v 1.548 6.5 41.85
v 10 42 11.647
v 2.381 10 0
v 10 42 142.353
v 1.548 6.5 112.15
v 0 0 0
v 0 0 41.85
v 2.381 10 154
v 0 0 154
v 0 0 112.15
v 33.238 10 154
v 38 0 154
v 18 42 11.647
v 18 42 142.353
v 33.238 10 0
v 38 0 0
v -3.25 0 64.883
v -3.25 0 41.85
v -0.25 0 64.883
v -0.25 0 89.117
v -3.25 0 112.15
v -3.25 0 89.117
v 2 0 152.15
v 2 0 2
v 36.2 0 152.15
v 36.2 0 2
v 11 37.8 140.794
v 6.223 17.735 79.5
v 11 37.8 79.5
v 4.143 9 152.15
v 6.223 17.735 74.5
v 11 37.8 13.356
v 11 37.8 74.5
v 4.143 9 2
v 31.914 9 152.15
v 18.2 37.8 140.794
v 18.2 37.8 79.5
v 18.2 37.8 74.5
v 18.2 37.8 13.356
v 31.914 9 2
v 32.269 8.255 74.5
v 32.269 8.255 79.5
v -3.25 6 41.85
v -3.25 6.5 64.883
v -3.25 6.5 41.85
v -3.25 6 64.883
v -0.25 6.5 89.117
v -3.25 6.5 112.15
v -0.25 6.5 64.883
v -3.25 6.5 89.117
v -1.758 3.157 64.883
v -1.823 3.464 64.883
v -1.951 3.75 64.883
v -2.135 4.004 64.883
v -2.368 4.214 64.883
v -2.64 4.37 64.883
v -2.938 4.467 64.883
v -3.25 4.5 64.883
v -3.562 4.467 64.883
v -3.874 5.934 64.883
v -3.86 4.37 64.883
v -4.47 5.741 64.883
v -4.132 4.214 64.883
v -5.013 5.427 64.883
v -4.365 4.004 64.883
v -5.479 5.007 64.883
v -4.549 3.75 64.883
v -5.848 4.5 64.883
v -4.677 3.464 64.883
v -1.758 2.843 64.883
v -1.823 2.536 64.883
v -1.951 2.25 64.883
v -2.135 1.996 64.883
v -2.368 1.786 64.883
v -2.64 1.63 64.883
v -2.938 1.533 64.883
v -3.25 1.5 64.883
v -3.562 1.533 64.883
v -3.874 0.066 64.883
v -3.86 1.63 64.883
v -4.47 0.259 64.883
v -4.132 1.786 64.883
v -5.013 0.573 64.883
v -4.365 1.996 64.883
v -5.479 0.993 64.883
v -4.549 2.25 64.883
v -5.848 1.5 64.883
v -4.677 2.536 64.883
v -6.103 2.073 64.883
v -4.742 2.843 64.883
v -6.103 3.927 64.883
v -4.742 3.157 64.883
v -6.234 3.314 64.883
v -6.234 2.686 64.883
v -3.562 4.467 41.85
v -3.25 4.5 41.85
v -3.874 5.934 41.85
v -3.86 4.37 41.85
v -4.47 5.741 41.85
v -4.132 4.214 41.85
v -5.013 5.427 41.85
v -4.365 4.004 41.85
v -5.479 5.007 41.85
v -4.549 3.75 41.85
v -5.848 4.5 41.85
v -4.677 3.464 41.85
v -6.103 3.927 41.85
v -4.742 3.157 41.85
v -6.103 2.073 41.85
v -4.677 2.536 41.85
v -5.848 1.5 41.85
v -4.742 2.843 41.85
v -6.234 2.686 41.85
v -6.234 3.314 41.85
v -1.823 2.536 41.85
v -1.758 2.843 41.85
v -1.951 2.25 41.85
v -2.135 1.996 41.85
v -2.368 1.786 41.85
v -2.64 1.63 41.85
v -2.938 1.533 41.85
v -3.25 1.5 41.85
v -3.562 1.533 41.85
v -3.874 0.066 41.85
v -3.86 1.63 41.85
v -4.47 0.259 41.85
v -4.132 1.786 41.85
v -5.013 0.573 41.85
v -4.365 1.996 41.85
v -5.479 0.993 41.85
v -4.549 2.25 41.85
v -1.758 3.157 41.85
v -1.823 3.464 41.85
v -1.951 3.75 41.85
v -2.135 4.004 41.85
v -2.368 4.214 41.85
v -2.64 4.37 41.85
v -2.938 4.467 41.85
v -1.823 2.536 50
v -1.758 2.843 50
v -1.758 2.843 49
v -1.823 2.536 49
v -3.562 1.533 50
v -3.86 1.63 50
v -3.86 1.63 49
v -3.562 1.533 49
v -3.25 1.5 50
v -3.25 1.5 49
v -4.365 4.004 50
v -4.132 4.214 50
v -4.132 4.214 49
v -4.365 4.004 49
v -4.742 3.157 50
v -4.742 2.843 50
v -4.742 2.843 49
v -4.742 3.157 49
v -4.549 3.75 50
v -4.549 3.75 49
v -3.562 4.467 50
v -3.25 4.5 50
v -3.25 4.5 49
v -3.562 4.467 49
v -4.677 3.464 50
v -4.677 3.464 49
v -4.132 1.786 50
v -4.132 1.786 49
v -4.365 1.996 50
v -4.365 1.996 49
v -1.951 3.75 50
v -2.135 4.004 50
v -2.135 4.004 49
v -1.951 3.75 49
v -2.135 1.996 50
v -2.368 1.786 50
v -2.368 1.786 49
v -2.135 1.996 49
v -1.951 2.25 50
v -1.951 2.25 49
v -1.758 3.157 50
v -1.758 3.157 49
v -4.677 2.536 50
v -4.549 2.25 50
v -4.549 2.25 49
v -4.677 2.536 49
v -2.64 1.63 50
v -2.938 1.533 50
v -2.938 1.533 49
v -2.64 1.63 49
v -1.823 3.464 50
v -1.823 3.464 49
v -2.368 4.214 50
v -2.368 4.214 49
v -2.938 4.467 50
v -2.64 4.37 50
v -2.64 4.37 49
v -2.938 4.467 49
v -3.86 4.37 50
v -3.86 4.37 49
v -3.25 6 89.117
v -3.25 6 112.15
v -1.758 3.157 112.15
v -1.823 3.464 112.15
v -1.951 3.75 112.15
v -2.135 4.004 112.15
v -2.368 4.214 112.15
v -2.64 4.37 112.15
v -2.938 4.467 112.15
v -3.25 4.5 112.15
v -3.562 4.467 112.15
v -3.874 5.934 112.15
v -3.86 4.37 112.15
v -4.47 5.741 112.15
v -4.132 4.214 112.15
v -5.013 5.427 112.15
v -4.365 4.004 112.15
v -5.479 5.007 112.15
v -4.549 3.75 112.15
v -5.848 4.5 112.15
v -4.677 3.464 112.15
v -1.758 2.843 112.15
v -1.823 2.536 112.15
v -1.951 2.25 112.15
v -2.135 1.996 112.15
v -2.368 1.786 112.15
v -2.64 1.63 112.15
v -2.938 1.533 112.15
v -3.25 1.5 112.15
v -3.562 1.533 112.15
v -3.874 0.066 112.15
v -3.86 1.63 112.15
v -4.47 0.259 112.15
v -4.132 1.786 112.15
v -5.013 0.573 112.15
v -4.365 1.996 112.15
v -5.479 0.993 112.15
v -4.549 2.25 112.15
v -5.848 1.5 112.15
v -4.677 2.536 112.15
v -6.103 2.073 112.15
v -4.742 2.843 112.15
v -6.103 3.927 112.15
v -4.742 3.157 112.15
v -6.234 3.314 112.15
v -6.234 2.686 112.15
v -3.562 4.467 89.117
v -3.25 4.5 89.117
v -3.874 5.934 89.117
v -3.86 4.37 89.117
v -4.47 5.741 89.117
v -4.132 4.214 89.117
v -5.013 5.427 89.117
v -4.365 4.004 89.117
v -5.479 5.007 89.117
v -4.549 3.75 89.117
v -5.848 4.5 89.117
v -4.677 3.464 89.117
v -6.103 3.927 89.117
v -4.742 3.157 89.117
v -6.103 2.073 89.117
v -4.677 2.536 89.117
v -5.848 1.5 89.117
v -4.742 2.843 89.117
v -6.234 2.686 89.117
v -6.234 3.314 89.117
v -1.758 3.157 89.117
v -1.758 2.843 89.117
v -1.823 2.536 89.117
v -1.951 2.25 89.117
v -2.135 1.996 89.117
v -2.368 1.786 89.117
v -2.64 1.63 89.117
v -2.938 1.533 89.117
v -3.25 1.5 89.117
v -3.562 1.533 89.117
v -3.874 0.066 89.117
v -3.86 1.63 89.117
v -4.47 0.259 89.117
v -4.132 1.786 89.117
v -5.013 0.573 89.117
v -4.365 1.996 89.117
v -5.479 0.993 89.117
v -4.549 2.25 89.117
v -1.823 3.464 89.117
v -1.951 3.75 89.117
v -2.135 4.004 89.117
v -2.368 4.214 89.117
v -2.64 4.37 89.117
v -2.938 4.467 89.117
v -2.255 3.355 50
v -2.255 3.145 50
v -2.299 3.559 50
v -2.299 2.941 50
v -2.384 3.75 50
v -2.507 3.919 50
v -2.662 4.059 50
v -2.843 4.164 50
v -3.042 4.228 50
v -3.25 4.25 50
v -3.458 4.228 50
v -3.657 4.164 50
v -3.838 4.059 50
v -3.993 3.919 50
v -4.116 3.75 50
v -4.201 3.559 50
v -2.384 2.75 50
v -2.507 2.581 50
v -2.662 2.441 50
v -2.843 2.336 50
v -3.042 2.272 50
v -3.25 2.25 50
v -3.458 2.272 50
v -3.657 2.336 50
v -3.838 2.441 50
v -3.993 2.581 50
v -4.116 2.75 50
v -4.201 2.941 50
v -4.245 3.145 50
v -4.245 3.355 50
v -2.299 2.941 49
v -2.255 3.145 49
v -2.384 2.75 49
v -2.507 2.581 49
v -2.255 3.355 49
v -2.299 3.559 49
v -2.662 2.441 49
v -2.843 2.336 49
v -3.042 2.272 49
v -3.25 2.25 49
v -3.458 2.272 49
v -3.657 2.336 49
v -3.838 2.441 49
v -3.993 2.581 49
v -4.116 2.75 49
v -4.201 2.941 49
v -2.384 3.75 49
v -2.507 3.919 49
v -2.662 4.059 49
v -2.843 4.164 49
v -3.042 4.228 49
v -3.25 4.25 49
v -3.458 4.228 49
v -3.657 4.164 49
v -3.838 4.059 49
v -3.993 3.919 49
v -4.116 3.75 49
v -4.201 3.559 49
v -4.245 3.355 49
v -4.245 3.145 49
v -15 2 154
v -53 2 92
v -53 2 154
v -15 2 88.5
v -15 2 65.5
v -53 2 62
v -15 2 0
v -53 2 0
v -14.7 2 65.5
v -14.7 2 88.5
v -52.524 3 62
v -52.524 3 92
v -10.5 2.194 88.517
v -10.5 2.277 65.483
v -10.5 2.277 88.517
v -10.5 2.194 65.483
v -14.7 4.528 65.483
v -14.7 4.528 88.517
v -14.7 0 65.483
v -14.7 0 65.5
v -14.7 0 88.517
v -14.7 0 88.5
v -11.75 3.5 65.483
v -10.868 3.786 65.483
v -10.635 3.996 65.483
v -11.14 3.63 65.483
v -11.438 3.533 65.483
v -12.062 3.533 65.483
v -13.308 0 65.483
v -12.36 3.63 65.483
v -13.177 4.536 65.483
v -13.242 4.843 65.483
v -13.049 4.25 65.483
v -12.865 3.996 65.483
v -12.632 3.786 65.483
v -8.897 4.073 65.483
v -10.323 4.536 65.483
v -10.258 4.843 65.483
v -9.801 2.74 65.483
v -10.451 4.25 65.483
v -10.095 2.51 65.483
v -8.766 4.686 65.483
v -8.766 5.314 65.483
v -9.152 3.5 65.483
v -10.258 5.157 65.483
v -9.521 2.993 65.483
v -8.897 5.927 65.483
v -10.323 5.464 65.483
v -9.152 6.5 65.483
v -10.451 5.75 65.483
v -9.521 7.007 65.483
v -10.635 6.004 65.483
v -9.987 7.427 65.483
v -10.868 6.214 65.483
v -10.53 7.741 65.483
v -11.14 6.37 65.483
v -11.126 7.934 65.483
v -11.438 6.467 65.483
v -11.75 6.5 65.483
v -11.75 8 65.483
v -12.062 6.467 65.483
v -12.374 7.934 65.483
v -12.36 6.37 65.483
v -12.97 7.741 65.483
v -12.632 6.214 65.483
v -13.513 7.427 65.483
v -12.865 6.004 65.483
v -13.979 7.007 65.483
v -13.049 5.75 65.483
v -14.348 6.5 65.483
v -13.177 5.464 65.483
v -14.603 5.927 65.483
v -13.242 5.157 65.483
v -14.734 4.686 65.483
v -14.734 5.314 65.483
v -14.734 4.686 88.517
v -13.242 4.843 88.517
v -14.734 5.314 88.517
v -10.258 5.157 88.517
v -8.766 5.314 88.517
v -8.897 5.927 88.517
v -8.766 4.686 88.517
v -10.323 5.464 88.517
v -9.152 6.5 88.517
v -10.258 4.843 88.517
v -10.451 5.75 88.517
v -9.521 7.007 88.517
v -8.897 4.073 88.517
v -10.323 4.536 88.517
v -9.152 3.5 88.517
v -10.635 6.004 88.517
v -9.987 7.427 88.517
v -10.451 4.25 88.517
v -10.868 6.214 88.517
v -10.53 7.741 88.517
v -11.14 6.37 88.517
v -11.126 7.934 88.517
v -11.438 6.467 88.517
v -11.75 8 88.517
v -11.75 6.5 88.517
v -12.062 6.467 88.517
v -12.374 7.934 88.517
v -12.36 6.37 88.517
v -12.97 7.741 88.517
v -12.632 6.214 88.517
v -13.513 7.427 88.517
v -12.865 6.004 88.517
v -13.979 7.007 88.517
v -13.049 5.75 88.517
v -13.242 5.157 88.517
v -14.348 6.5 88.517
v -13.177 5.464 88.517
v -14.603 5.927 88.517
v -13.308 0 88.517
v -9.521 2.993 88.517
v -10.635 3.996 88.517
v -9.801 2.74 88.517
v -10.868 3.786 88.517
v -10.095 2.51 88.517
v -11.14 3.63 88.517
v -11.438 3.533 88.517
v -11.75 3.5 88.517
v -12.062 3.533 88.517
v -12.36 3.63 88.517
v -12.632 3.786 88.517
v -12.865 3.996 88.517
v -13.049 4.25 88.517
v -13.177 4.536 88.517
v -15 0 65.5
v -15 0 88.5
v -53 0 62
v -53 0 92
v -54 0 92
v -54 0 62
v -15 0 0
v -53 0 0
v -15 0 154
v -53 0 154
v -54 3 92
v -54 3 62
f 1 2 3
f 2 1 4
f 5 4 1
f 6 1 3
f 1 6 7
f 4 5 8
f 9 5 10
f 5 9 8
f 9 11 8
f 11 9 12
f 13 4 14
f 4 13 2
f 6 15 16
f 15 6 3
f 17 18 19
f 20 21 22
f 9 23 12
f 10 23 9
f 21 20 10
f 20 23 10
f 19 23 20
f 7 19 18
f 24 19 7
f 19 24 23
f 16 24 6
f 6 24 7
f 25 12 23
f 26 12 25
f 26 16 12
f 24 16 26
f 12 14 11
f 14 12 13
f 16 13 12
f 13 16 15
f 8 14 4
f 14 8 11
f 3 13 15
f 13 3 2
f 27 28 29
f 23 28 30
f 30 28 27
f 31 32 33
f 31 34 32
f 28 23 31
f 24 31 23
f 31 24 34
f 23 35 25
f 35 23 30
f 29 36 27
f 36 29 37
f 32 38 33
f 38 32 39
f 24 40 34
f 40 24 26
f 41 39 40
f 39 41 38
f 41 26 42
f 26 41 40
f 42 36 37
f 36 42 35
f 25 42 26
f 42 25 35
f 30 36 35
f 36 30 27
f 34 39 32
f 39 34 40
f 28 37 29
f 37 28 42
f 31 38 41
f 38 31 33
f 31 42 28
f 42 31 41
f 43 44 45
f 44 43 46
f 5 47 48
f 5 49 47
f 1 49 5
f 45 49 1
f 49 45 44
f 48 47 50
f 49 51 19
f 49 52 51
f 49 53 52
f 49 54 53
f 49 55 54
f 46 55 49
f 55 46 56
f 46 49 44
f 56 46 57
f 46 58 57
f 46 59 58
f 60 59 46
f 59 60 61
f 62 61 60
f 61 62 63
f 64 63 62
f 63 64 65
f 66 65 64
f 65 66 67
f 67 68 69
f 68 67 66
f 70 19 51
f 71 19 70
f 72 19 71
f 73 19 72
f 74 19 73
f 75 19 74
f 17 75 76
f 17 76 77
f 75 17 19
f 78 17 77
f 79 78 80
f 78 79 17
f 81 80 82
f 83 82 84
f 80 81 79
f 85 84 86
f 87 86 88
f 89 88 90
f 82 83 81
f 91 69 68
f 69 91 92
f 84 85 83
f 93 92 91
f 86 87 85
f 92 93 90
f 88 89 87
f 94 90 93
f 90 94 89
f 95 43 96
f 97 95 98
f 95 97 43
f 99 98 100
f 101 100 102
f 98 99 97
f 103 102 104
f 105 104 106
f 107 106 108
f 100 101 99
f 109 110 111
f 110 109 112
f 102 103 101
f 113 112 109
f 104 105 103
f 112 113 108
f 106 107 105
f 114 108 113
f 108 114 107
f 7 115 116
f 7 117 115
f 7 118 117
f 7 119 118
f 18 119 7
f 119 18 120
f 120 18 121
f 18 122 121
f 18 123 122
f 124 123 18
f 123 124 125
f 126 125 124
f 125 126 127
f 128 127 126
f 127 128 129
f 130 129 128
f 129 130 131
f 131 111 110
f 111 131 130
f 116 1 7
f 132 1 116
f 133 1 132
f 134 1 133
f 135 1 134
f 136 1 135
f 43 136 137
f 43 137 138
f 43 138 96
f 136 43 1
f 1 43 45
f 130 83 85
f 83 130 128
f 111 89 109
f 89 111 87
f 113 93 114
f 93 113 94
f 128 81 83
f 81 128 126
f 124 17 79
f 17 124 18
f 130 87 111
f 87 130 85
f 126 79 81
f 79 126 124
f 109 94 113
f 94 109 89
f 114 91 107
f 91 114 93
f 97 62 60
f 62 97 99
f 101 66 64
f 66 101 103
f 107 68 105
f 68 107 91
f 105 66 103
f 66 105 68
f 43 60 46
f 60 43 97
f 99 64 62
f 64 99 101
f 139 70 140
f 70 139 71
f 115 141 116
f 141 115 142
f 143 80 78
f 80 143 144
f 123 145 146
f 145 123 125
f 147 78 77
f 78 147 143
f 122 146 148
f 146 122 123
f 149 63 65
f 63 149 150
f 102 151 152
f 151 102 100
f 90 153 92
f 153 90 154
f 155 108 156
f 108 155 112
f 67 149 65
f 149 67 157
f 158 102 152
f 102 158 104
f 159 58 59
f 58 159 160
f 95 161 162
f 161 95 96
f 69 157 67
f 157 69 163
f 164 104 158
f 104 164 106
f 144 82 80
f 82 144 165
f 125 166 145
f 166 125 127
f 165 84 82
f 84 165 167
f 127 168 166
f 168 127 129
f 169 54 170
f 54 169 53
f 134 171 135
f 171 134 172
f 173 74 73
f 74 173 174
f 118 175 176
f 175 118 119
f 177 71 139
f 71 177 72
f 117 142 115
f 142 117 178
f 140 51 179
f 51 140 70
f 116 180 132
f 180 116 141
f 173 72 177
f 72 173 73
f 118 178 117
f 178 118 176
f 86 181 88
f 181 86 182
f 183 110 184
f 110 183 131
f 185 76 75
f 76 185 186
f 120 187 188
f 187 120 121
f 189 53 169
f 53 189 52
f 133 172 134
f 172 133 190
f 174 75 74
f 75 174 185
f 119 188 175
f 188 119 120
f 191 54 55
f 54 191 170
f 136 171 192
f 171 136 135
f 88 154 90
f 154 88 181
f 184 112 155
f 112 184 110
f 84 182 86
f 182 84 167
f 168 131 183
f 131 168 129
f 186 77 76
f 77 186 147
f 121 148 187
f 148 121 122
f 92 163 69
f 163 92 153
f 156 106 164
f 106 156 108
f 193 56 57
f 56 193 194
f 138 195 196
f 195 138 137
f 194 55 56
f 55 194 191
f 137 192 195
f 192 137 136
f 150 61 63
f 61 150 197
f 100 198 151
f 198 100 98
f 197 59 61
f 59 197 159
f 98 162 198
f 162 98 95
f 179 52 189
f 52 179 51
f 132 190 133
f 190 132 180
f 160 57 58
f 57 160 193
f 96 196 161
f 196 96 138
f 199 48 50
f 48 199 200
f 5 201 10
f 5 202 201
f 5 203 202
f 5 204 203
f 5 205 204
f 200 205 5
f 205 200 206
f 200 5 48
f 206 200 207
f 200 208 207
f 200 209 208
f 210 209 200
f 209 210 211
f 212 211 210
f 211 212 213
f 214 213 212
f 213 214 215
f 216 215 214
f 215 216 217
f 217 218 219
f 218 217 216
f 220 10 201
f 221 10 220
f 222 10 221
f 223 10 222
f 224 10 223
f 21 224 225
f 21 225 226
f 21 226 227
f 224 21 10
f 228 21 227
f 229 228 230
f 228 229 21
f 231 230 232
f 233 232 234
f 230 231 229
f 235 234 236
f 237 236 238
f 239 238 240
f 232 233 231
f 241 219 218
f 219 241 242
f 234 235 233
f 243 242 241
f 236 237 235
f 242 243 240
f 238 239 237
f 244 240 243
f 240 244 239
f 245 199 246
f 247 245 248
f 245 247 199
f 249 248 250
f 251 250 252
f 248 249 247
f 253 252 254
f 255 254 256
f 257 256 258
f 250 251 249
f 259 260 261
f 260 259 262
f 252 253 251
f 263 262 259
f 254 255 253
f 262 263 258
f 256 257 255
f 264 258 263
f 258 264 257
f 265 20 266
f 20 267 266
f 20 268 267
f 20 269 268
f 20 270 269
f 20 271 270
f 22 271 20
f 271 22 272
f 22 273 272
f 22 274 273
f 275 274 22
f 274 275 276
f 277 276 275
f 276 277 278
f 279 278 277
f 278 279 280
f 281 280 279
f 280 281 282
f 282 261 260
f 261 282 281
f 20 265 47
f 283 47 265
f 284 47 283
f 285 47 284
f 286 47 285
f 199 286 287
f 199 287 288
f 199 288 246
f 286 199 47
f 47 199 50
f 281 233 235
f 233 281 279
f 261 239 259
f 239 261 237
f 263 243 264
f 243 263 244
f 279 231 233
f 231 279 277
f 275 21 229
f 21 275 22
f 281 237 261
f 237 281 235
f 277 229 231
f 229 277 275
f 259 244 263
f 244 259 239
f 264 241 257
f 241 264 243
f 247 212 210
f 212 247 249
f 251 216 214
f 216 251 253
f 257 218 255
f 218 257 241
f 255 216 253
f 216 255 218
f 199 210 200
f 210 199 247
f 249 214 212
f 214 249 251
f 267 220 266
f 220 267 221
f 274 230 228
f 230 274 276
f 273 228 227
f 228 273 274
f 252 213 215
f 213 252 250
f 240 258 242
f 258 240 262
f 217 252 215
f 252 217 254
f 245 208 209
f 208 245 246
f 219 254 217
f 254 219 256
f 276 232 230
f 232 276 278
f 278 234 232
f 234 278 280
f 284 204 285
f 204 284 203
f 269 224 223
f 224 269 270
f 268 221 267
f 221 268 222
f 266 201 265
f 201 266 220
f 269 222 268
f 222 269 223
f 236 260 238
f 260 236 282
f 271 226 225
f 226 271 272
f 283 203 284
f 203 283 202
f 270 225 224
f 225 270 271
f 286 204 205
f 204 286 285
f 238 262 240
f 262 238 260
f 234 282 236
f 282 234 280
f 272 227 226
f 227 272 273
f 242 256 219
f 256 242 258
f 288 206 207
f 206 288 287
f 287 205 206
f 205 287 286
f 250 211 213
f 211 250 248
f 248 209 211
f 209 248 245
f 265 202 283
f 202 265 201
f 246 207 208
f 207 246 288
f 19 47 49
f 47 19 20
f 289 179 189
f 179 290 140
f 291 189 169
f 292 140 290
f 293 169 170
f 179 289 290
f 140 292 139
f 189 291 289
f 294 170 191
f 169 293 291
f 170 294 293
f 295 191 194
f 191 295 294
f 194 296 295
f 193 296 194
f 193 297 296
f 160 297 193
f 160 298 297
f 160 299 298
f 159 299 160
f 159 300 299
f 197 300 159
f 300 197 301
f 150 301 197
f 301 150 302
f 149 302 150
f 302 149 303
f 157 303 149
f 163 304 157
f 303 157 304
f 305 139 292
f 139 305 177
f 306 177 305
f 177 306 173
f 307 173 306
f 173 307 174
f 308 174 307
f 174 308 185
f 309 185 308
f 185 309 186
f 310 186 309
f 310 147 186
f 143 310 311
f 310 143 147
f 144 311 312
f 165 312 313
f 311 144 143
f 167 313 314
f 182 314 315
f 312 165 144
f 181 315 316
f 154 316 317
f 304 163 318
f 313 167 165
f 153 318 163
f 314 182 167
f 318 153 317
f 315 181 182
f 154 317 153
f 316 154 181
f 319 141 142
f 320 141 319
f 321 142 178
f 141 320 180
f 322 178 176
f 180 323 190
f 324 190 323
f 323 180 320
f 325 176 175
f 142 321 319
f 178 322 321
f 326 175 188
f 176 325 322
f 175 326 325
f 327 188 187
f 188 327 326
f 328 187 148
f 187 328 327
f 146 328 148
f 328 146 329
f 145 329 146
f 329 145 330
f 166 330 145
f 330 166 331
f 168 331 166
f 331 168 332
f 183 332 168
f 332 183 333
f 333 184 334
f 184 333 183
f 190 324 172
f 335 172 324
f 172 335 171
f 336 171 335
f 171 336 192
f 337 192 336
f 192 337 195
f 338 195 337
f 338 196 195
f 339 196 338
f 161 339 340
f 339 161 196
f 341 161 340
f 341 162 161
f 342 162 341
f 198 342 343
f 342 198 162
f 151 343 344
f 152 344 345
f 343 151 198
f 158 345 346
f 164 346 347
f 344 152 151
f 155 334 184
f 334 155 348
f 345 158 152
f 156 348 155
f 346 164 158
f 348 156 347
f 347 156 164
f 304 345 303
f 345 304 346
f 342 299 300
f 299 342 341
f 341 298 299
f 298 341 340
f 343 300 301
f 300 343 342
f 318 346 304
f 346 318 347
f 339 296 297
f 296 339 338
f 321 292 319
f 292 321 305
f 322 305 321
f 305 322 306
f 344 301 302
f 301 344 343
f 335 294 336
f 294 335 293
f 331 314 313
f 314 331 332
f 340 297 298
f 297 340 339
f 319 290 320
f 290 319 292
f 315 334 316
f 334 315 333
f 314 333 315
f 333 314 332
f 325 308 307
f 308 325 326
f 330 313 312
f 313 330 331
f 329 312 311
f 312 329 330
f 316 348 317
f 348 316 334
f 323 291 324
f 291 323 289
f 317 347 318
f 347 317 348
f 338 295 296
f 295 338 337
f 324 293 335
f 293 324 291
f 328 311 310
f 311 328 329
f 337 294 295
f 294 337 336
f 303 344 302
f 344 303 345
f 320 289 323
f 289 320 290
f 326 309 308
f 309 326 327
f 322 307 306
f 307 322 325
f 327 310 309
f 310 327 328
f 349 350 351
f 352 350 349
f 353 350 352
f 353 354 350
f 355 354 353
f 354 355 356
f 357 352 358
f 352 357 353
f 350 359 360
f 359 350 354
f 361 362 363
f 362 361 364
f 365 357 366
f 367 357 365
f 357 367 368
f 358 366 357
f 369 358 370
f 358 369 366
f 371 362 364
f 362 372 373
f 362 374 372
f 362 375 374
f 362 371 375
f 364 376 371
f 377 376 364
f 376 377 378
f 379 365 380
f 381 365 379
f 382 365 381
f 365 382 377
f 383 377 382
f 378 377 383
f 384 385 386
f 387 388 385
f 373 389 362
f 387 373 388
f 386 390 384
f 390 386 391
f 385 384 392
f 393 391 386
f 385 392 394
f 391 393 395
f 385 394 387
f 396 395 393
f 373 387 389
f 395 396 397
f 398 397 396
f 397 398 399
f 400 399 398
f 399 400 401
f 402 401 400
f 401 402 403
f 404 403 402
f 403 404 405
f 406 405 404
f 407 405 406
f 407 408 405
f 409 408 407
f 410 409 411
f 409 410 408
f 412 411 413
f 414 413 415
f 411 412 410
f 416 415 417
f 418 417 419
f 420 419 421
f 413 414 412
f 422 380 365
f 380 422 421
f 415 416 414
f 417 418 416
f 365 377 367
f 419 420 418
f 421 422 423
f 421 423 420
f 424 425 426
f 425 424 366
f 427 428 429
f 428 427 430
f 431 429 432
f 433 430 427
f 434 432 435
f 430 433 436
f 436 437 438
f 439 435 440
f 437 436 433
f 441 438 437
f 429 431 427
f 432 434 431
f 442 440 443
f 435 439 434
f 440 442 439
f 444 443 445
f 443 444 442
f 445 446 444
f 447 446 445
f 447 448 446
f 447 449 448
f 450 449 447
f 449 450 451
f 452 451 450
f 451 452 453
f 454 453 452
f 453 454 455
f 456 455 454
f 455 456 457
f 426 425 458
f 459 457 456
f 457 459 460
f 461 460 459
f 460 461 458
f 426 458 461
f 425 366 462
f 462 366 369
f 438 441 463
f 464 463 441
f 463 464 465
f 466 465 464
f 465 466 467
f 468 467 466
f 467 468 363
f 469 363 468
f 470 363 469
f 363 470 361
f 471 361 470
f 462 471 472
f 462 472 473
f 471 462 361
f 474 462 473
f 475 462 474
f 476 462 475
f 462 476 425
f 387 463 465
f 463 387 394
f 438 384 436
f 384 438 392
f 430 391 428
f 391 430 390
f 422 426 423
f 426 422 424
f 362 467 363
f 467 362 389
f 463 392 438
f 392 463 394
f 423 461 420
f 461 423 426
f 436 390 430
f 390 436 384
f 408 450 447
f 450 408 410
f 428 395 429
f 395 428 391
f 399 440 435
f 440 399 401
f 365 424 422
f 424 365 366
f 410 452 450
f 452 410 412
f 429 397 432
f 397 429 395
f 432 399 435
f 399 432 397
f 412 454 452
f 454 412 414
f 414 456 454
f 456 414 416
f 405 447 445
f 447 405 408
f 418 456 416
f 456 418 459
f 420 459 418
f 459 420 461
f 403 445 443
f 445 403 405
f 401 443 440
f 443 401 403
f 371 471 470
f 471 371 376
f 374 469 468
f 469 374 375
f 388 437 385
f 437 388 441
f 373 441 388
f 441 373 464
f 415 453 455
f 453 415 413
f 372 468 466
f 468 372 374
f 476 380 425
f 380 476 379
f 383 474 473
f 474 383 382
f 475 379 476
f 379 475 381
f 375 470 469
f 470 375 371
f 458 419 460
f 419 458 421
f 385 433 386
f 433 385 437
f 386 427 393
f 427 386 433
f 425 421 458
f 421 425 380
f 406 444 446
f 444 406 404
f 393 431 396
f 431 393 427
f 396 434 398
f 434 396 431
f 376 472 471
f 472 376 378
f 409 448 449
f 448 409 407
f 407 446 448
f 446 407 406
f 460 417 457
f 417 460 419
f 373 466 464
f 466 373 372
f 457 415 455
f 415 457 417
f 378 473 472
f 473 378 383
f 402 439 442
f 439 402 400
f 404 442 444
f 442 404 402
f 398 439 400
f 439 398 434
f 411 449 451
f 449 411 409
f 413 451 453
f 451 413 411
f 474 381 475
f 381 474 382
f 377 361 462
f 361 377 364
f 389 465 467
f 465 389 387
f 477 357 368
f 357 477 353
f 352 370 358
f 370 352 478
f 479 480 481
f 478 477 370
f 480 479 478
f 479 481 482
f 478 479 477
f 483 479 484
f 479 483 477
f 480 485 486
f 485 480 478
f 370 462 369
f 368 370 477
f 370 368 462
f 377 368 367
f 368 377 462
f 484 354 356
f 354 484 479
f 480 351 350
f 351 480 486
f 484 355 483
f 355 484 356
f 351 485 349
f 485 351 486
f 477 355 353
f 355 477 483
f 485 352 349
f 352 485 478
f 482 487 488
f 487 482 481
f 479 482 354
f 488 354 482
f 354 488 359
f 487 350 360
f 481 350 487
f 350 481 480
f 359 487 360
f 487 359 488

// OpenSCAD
//
// ktBOX10
//
//





gap1 = 0.001;
gap2 = 0.002;
th = 2;

X = 154;
XX = 10;
Y = 43;
Z = th;


bottom();
translate([-15, th, X]) rotate([180, 0, 180]) upper();


module bottom()
{
difference()
{
    union()
    {
        base();
        c();
    }
    translate([th, 0, th]) scale([0.9, 0.9, 0.975]) base();
}
difference()
{
    translate([0, 20, X/2-5/2]) rotate([0, 0, -20]) cube([35, 40, 5]);
    base_diff();
}
}


module base()
{
difference()
{
    linear_extrude(X) polygon([[0,0],[ 38,0],[18,42],[10,42]]);
    translate([0, 10, X]) rotate([-20, 0, 0]) cube([40, 50, 20]);
    translate([40, 10, 0]) rotate([180-20, 0, 180]) cube([40, 50, 20]);
}
}

module base_diff()
{
difference()
{
    translate([-100/2, 0, 0]) cube([100, 100, 200]);
    base();
}
}



module upper()
{
difference()
{
    union()
    {
        d();
        translate([-1, -th, X/2-23/2]) cube([2, th, 23]);
        translate([0, -th, 0]) cube([38, th, X]);
        translate([38-1, -th, X/2-30/2]) cube([th, 3, 30]);
    }
    base();
    translate([-10, -th-th, 0]) cube([38+20, th, X]);

}
}
module upper_diff()
{
    translate([0, 0, -50]) cube([70,70,100], center=true);
    translate([0, 0, -18/2]) cylinder(18, 70/2, 70/2, $fn=100);
}



module c()
{
translate([-6.5/2, 6.5, X/2]) rotate([0, -90, 0])difference()
{
    union()
    {
        translate([-70.3/2, 0, -9]) rotate([0, 0, -90]) hinge();
        translate([70.3/2-70/3+0.3, 0, -9]) rotate([0, 0, -90]) hinge();
        translate([-70/2, -6.5, -9]) cube([70, 6.5, 8-2]);
        
        translate([-55/2, -6.5/2, -10+8+2]) rotate([90, 0, 90]) cylinder( 1, 2, 2, center=true, $fn=30 );
    }
    translate([-55/2, -6.5/2, -10+8+2]) rotate([90, 0, 90]) cylinder( 1+gap2, 1, 1, center=true, $fn=30 );
}
}



module d()
{
translate([-6.5/2, 6.5, X/2]) rotate([0, 90, 0]) difference()
{
    union()
    {
        translate([(70/3)/2-0.3/2, 0, 9]) rotate([0, 180, 90]) hinge_m();
        //translate([-70.3/2+70.3/3, -6.5-th, 9-(8-2)-(8-2)/2]) cube([70.3/3, th, (8-2)/2]);
    }
}
}






module hinge()
{
h = 7;
hinge_x = 6.5;
hinge_y = 70/3-0.3;
hinge_hole = 1.1+0.4;
difference()
{
    union()
    {
        cube( [hinge_x, hinge_y, h+th] );
        translate( [hinge_x/2+0.25, hinge_y/2, h+th] ) rotate( [90, 0, 0] ) cylinder( hinge_y, hinge_x/2-0.25, hinge_x/2-0.25, center=true, $fn=30 );
    }
    translate( [hinge_x/2+0.25, hinge_y/2, h+th] )
    rotate( [90, 0, 0] ) cylinder( hinge_y+gap2, hinge_hole, hinge_hole, center=true, $fn=30 );
}
}


module hinge_m()
{
h = 7;
hinge_x = 6.5;
hinge_y = 70/3-0.3;
hinge_hole = 1.1+0.4;
difference()
{
    union()
    {
        translate([6.5/2, 0, 6.5/2+2.8]) cube( [hinge_x-1.2, hinge_y, h+th-2.8-2] );
        translate( [hinge_x/2+0.25, hinge_y/2, h+th] ) rotate( [90, 0, 0] ) cylinder( hinge_y, hinge_x/2-0.25, hinge_x/2-0.25, center=true, $fn=30 );
    }
    translate( [hinge_x/2+0.25, hinge_y/2, h+th] )
    rotate( [90, 0, 0] ) cylinder( hinge_y+gap2, hinge_hole, hinge_hole, center=true, $fn=30 );
    
    translate([6.5/2+7.9, 0, 6.5/2+2.8-2]) rotate([0, -38, 0]) cube( [hinge_x-1.2, hinge_y, h+th-2.8-2+5] );
}
}
